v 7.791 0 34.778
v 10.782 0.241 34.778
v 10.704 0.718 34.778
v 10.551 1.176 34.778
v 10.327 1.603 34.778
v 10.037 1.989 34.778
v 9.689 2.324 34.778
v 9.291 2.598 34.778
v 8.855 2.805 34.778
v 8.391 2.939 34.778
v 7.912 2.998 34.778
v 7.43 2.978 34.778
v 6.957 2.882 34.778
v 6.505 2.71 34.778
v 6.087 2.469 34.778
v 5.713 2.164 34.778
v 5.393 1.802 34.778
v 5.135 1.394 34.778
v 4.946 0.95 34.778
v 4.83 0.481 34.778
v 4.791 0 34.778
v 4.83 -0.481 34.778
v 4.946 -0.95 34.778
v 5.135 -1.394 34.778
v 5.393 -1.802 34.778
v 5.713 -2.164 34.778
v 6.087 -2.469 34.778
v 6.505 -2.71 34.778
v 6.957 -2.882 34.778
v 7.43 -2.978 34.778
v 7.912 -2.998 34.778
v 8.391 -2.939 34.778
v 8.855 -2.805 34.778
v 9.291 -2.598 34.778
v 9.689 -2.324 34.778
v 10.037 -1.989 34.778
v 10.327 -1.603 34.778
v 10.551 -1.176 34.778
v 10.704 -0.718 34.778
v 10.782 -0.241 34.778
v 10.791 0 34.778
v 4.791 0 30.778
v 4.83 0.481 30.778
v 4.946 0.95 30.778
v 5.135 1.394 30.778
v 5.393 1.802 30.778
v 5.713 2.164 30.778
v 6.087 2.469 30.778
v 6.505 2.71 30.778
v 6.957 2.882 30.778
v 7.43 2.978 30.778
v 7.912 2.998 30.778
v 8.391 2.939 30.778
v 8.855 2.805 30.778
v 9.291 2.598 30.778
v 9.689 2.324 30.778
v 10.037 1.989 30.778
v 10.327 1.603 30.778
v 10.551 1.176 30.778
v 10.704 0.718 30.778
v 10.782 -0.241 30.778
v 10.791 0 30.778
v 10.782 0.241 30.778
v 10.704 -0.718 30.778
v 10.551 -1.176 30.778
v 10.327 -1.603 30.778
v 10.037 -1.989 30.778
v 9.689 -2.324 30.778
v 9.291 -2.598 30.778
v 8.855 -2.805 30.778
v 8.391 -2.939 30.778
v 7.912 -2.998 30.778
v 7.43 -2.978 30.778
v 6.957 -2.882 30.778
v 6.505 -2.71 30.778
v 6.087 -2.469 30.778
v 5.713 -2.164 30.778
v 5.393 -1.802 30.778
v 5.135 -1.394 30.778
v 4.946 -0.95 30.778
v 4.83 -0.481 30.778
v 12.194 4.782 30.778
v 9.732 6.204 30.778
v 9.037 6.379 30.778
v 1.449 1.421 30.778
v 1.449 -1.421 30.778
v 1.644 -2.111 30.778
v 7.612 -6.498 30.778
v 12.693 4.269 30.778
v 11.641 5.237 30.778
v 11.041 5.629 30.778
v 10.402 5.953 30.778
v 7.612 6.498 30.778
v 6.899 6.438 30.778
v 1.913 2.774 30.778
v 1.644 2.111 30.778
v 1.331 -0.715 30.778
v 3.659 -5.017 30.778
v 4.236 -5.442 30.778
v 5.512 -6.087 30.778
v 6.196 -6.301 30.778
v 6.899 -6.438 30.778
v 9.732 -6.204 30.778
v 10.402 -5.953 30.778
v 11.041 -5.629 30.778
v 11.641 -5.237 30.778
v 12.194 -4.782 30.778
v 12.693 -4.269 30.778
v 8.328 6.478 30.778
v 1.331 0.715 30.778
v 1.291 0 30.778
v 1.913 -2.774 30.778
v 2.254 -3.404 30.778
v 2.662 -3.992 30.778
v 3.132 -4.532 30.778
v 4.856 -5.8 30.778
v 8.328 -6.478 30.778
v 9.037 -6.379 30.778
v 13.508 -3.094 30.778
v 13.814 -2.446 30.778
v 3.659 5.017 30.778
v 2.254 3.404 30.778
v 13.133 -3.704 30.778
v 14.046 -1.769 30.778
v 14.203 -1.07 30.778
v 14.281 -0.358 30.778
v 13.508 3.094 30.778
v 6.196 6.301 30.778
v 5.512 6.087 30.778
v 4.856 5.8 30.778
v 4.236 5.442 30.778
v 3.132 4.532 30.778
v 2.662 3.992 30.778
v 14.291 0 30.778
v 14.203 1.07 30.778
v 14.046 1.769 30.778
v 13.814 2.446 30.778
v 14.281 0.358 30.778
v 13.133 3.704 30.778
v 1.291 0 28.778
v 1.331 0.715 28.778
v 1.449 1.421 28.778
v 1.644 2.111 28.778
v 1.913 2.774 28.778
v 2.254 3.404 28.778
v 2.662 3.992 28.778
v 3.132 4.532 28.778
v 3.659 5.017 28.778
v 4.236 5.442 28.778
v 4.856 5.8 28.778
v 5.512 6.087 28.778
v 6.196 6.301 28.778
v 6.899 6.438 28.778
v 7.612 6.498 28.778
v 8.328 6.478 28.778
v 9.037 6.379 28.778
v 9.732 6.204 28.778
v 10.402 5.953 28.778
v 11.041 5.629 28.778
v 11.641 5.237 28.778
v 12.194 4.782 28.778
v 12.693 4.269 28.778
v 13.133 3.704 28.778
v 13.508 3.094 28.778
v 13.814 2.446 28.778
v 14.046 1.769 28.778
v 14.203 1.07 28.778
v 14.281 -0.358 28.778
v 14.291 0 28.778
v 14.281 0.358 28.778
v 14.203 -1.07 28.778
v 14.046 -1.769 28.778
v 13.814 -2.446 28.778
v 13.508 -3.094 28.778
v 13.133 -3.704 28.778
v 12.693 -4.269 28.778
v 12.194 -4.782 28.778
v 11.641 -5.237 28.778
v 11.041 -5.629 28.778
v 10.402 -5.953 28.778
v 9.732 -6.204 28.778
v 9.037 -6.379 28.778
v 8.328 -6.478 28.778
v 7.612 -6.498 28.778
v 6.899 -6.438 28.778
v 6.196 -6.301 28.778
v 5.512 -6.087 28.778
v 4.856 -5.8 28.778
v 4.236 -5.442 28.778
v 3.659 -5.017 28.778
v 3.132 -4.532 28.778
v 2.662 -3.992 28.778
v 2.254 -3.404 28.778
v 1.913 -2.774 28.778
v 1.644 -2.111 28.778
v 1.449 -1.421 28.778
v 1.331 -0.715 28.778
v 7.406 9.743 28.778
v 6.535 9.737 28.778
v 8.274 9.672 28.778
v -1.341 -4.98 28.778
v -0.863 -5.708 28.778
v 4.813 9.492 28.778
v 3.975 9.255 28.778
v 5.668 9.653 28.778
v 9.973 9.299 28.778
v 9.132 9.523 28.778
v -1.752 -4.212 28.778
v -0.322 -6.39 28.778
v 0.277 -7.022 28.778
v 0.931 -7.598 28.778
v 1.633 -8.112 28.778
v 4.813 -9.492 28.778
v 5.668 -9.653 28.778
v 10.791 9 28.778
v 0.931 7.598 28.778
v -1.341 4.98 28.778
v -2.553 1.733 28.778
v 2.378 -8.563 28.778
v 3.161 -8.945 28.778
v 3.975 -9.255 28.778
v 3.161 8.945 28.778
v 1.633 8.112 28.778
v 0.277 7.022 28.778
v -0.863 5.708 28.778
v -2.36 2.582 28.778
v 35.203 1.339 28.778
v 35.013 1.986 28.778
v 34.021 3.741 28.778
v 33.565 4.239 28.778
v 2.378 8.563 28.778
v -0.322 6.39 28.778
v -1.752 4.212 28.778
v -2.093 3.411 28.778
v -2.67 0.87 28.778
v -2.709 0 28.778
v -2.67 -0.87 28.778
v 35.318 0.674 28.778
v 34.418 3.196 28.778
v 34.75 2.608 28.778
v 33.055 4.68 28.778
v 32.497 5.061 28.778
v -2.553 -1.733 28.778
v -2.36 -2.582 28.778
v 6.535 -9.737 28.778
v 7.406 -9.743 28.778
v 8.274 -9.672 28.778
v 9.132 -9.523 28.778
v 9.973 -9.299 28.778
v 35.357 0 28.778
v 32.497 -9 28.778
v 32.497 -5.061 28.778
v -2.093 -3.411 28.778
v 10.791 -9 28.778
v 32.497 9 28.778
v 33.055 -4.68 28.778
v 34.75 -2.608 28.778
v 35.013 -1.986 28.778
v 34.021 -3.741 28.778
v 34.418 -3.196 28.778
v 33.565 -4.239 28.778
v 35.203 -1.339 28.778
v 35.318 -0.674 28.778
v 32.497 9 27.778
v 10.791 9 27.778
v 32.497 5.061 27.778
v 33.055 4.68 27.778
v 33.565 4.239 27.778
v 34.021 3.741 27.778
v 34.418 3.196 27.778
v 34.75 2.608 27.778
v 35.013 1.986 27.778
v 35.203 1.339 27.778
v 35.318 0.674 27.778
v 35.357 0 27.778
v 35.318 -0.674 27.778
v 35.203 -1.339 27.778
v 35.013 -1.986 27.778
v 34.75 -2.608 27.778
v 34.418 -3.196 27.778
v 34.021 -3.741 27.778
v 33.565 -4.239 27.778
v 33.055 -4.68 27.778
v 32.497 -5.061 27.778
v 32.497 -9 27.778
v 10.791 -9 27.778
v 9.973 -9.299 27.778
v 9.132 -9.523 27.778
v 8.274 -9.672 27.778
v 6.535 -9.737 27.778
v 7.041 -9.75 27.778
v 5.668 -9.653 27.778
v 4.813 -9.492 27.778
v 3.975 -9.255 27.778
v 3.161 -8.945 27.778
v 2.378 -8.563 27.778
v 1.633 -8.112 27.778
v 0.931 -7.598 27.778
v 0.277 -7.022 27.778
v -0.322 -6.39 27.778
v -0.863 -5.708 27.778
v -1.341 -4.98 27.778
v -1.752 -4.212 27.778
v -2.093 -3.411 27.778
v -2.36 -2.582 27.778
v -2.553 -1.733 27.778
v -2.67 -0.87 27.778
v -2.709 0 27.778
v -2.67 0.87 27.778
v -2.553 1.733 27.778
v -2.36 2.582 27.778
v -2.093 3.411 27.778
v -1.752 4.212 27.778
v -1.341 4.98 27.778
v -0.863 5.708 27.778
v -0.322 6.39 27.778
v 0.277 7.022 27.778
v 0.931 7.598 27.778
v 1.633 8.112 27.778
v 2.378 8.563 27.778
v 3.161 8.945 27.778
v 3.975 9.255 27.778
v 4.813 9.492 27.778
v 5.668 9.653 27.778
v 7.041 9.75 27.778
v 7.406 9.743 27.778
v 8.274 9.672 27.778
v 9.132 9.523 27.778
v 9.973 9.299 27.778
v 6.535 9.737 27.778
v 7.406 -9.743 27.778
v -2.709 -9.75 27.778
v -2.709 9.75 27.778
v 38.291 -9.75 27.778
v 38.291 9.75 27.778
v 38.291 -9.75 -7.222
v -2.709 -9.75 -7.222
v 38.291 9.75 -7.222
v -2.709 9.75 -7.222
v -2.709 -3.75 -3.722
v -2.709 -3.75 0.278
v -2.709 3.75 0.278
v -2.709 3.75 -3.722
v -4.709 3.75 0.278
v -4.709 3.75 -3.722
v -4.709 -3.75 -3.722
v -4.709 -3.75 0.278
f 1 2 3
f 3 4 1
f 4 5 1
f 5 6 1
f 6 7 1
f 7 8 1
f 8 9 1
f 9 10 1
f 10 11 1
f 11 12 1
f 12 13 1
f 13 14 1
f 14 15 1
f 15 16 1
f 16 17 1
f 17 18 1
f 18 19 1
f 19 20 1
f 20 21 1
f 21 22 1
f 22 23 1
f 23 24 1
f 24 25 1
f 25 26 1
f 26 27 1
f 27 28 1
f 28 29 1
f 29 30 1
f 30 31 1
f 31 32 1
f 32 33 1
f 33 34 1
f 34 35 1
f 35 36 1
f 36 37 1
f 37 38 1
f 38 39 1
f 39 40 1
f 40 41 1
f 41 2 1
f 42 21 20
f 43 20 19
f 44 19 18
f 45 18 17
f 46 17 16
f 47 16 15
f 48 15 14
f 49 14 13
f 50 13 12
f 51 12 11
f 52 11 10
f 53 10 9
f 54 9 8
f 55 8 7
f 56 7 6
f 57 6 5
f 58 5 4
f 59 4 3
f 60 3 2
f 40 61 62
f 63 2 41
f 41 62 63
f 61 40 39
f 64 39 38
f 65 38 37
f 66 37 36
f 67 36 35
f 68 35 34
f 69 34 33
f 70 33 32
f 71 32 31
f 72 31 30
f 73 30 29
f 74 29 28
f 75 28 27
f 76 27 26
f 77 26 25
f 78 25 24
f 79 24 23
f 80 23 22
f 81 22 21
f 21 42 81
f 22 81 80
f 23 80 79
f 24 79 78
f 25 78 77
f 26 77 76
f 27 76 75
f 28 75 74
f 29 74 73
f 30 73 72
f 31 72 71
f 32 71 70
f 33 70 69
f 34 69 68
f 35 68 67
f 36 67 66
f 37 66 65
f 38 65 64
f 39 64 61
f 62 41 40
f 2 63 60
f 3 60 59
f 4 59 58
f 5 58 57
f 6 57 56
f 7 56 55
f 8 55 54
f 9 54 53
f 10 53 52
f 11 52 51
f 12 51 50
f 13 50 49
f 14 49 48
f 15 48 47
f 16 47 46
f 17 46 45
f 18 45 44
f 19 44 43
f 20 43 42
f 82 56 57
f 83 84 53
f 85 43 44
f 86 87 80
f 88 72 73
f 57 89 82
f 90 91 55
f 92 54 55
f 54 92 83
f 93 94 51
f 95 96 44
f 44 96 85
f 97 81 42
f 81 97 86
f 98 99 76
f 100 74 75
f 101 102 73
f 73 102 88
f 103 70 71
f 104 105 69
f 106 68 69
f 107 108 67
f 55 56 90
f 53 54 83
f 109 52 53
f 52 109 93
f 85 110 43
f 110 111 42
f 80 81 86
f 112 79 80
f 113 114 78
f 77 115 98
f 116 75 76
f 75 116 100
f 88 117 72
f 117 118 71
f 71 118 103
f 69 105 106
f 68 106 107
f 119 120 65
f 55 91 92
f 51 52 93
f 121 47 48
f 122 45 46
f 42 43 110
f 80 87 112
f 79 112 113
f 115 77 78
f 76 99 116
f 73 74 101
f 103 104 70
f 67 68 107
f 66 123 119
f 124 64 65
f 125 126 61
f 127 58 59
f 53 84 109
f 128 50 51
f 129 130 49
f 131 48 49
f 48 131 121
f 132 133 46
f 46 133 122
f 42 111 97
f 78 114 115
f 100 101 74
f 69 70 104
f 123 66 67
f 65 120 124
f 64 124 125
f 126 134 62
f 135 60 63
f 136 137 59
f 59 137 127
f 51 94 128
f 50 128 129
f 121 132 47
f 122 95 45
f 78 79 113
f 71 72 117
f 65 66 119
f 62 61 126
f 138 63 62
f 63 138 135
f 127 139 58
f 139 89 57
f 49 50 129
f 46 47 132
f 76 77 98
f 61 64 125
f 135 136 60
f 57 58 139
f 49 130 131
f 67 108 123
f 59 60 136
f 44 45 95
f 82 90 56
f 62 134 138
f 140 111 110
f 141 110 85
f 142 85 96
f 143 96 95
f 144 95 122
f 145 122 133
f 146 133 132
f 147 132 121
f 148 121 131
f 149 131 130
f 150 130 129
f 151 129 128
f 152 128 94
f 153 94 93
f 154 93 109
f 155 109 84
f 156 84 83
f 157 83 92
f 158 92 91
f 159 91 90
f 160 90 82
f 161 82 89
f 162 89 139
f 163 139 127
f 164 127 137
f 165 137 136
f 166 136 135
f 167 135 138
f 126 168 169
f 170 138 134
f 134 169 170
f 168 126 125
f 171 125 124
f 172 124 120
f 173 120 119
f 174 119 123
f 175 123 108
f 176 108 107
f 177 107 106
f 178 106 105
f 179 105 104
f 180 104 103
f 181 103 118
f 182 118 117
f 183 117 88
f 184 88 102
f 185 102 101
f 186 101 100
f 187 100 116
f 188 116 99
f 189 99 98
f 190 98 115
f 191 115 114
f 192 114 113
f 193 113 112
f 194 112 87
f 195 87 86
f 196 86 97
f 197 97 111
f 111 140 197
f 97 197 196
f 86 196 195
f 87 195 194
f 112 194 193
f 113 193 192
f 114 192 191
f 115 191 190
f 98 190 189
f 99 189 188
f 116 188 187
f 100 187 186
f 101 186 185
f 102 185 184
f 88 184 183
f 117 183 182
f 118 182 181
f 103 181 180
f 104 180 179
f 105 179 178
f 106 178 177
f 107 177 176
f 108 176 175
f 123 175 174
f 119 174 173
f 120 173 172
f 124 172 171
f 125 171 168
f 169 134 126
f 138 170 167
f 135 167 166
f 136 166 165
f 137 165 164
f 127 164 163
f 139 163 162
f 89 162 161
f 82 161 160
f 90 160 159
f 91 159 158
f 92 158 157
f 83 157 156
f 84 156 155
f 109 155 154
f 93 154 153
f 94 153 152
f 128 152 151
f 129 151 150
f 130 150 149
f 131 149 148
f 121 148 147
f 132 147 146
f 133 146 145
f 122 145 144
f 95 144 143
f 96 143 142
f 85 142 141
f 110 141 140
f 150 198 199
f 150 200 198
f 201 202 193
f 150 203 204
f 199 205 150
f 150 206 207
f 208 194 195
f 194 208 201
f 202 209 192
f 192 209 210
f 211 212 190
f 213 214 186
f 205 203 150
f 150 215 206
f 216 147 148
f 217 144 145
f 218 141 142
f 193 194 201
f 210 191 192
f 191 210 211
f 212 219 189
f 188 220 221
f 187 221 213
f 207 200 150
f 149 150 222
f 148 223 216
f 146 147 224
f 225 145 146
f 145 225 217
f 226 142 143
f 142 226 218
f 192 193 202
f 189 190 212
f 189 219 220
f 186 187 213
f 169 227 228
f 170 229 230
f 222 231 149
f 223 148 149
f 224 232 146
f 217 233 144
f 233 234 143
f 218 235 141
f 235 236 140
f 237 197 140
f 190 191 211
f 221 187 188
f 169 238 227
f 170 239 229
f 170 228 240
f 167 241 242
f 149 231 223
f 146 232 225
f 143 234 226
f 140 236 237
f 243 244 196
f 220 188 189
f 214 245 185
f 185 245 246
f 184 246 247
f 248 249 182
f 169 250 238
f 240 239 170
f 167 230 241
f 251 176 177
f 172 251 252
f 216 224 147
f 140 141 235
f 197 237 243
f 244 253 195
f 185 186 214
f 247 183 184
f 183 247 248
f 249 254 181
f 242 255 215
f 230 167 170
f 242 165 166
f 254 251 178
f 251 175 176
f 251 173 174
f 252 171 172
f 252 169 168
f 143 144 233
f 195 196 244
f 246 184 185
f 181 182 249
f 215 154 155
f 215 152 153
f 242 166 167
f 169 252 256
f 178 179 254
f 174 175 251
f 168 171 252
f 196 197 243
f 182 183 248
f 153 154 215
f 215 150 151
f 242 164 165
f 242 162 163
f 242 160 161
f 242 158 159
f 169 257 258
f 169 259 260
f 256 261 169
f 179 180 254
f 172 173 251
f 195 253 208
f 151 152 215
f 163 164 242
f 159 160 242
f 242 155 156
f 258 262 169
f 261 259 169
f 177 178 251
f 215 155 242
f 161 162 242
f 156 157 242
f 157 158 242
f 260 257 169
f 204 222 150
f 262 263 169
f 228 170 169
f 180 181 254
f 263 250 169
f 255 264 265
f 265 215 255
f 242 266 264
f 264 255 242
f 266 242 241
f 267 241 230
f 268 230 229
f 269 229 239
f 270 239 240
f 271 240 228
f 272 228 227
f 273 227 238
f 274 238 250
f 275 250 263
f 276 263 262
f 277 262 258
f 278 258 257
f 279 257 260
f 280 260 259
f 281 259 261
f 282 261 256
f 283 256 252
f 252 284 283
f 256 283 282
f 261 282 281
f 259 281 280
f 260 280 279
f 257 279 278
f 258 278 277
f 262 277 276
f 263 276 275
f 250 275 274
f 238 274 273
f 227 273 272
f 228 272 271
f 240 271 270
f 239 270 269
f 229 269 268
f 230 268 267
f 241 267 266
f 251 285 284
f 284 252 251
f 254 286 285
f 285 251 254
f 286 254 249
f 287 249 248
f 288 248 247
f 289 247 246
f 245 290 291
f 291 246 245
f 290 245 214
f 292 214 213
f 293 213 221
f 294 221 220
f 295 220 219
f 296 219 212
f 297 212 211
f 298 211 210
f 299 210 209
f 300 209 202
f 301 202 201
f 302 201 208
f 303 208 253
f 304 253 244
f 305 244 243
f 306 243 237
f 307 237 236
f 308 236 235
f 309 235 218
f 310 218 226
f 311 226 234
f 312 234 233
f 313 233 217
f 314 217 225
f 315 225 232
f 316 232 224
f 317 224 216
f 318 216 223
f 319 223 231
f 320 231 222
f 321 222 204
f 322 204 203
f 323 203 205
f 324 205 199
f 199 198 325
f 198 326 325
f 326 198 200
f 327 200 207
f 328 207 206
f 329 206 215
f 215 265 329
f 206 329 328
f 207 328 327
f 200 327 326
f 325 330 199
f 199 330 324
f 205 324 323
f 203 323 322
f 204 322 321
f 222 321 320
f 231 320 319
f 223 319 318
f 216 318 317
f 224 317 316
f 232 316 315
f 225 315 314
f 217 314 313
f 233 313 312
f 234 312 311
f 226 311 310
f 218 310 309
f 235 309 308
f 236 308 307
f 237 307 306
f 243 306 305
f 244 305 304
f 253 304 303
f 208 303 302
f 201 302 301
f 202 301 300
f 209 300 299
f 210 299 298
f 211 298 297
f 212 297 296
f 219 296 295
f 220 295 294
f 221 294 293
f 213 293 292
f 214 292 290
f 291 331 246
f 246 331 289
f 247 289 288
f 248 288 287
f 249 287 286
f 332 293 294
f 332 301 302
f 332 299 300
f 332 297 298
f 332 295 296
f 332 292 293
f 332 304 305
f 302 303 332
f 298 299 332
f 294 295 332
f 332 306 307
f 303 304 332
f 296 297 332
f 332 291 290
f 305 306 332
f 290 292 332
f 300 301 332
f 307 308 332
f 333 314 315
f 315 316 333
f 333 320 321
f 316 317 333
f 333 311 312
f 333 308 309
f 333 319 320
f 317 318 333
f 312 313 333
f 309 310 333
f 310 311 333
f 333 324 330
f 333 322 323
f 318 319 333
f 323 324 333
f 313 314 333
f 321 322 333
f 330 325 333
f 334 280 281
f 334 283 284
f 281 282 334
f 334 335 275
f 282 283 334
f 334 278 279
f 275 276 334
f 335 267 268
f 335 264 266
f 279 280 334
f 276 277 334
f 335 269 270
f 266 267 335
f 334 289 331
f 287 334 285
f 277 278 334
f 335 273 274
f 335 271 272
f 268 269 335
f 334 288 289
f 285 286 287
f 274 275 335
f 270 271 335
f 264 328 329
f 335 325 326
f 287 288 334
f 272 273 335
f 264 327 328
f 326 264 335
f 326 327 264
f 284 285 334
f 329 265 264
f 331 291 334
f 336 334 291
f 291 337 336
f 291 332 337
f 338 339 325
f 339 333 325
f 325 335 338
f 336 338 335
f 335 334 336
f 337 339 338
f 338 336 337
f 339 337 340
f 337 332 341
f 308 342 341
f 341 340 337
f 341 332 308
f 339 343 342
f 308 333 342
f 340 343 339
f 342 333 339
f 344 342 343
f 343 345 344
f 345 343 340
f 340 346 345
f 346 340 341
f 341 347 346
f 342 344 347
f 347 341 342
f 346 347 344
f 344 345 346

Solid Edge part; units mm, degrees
sketch "Sketch1" plane through (0, 0, 0) normal (0, -1, 0) x (1, 0, 0)
  line L0 (38.2914, 27.7776) -> (38.2914, -7.2224)
  line L1 (38.2914, -7.2224) -> (-2.7086, -7.2224)
  line L2 (-2.7086, -7.2224) -> (-2.7086, 27.7776)
  line L3 (-2.7086, 27.7776) -> (38.2914, 27.7776)
  dimension "D1" = 41
  dimension "D2" = 35
extrude "Protrusion1" add sketch "Sketch1" along normal mid plane 19.5
sketch "Sketch2" plane through (17.7914, 0, 27.7776) normal (0, 0, 1) x (1, 0, 0)
  line L0 (-7, 9) -> (14.706, 9)
  line L1 (14.706, 9) -> (14.706, 5.061)
  line L2 (14.706, -5.061) -> (14.706, -9)
  line L3 (14.706, -9) -> (-7, -9)
  arc A0 (-7, -9) -> (-7, 9) centre (-10.75, 0) cw
  arc A1 (14.706, 5.061) -> (14.706, -5.061) centre (11.6575, 0) cw
  dimension "D1" = 19.5
  dimension "D2" = 3.939
extrude "ProtrusiónExtruida_3" add sketch "Sketch2" along normal blind 1
sketch "Sketch3" plane through (16.3242, 0, 28.7776) normal (0, 0, 1) x (1, 0, 0)
  circle A0 centre (-8.5328, 0) radius 6.5
  dimension "D1" = 10.5
  dimension "D2" = 13
extrude "ProtrusiónExtruida_4" add sketch "Sketch3" along normal blind 2
sketch "Sketch4" plane through (7.7914, 0, 30.7776) normal (0, 0, 1) x (1, 0, 0)
  circle A0 centre (0, 0) radius 3
extrude "ProtrusiónExtruida_5" add sketch "Sketch4" along normal blind 4
sketch "Sketch5" plane through (-2.7086, 0, 10.2776) normal (-1, 0, 0) x (0, 0, 1)
  line L0 (-14, 3.75) -> (-14, -3.75)
  line L1 (-10, -3.75) -> (-14, -3.75)
  line L2 (-10, 3.75) -> (-10, -3.75)
  line L3 (-14, 3.75) -> (-10, 3.75)
  dimension "D1" = 3.5
  dimension "D2" = 7.5
  dimension "D3" = 4
extrude "ProtrusiónExtruida_6" add sketch "Sketch5" along normal blind 2
properties material "Servo"
